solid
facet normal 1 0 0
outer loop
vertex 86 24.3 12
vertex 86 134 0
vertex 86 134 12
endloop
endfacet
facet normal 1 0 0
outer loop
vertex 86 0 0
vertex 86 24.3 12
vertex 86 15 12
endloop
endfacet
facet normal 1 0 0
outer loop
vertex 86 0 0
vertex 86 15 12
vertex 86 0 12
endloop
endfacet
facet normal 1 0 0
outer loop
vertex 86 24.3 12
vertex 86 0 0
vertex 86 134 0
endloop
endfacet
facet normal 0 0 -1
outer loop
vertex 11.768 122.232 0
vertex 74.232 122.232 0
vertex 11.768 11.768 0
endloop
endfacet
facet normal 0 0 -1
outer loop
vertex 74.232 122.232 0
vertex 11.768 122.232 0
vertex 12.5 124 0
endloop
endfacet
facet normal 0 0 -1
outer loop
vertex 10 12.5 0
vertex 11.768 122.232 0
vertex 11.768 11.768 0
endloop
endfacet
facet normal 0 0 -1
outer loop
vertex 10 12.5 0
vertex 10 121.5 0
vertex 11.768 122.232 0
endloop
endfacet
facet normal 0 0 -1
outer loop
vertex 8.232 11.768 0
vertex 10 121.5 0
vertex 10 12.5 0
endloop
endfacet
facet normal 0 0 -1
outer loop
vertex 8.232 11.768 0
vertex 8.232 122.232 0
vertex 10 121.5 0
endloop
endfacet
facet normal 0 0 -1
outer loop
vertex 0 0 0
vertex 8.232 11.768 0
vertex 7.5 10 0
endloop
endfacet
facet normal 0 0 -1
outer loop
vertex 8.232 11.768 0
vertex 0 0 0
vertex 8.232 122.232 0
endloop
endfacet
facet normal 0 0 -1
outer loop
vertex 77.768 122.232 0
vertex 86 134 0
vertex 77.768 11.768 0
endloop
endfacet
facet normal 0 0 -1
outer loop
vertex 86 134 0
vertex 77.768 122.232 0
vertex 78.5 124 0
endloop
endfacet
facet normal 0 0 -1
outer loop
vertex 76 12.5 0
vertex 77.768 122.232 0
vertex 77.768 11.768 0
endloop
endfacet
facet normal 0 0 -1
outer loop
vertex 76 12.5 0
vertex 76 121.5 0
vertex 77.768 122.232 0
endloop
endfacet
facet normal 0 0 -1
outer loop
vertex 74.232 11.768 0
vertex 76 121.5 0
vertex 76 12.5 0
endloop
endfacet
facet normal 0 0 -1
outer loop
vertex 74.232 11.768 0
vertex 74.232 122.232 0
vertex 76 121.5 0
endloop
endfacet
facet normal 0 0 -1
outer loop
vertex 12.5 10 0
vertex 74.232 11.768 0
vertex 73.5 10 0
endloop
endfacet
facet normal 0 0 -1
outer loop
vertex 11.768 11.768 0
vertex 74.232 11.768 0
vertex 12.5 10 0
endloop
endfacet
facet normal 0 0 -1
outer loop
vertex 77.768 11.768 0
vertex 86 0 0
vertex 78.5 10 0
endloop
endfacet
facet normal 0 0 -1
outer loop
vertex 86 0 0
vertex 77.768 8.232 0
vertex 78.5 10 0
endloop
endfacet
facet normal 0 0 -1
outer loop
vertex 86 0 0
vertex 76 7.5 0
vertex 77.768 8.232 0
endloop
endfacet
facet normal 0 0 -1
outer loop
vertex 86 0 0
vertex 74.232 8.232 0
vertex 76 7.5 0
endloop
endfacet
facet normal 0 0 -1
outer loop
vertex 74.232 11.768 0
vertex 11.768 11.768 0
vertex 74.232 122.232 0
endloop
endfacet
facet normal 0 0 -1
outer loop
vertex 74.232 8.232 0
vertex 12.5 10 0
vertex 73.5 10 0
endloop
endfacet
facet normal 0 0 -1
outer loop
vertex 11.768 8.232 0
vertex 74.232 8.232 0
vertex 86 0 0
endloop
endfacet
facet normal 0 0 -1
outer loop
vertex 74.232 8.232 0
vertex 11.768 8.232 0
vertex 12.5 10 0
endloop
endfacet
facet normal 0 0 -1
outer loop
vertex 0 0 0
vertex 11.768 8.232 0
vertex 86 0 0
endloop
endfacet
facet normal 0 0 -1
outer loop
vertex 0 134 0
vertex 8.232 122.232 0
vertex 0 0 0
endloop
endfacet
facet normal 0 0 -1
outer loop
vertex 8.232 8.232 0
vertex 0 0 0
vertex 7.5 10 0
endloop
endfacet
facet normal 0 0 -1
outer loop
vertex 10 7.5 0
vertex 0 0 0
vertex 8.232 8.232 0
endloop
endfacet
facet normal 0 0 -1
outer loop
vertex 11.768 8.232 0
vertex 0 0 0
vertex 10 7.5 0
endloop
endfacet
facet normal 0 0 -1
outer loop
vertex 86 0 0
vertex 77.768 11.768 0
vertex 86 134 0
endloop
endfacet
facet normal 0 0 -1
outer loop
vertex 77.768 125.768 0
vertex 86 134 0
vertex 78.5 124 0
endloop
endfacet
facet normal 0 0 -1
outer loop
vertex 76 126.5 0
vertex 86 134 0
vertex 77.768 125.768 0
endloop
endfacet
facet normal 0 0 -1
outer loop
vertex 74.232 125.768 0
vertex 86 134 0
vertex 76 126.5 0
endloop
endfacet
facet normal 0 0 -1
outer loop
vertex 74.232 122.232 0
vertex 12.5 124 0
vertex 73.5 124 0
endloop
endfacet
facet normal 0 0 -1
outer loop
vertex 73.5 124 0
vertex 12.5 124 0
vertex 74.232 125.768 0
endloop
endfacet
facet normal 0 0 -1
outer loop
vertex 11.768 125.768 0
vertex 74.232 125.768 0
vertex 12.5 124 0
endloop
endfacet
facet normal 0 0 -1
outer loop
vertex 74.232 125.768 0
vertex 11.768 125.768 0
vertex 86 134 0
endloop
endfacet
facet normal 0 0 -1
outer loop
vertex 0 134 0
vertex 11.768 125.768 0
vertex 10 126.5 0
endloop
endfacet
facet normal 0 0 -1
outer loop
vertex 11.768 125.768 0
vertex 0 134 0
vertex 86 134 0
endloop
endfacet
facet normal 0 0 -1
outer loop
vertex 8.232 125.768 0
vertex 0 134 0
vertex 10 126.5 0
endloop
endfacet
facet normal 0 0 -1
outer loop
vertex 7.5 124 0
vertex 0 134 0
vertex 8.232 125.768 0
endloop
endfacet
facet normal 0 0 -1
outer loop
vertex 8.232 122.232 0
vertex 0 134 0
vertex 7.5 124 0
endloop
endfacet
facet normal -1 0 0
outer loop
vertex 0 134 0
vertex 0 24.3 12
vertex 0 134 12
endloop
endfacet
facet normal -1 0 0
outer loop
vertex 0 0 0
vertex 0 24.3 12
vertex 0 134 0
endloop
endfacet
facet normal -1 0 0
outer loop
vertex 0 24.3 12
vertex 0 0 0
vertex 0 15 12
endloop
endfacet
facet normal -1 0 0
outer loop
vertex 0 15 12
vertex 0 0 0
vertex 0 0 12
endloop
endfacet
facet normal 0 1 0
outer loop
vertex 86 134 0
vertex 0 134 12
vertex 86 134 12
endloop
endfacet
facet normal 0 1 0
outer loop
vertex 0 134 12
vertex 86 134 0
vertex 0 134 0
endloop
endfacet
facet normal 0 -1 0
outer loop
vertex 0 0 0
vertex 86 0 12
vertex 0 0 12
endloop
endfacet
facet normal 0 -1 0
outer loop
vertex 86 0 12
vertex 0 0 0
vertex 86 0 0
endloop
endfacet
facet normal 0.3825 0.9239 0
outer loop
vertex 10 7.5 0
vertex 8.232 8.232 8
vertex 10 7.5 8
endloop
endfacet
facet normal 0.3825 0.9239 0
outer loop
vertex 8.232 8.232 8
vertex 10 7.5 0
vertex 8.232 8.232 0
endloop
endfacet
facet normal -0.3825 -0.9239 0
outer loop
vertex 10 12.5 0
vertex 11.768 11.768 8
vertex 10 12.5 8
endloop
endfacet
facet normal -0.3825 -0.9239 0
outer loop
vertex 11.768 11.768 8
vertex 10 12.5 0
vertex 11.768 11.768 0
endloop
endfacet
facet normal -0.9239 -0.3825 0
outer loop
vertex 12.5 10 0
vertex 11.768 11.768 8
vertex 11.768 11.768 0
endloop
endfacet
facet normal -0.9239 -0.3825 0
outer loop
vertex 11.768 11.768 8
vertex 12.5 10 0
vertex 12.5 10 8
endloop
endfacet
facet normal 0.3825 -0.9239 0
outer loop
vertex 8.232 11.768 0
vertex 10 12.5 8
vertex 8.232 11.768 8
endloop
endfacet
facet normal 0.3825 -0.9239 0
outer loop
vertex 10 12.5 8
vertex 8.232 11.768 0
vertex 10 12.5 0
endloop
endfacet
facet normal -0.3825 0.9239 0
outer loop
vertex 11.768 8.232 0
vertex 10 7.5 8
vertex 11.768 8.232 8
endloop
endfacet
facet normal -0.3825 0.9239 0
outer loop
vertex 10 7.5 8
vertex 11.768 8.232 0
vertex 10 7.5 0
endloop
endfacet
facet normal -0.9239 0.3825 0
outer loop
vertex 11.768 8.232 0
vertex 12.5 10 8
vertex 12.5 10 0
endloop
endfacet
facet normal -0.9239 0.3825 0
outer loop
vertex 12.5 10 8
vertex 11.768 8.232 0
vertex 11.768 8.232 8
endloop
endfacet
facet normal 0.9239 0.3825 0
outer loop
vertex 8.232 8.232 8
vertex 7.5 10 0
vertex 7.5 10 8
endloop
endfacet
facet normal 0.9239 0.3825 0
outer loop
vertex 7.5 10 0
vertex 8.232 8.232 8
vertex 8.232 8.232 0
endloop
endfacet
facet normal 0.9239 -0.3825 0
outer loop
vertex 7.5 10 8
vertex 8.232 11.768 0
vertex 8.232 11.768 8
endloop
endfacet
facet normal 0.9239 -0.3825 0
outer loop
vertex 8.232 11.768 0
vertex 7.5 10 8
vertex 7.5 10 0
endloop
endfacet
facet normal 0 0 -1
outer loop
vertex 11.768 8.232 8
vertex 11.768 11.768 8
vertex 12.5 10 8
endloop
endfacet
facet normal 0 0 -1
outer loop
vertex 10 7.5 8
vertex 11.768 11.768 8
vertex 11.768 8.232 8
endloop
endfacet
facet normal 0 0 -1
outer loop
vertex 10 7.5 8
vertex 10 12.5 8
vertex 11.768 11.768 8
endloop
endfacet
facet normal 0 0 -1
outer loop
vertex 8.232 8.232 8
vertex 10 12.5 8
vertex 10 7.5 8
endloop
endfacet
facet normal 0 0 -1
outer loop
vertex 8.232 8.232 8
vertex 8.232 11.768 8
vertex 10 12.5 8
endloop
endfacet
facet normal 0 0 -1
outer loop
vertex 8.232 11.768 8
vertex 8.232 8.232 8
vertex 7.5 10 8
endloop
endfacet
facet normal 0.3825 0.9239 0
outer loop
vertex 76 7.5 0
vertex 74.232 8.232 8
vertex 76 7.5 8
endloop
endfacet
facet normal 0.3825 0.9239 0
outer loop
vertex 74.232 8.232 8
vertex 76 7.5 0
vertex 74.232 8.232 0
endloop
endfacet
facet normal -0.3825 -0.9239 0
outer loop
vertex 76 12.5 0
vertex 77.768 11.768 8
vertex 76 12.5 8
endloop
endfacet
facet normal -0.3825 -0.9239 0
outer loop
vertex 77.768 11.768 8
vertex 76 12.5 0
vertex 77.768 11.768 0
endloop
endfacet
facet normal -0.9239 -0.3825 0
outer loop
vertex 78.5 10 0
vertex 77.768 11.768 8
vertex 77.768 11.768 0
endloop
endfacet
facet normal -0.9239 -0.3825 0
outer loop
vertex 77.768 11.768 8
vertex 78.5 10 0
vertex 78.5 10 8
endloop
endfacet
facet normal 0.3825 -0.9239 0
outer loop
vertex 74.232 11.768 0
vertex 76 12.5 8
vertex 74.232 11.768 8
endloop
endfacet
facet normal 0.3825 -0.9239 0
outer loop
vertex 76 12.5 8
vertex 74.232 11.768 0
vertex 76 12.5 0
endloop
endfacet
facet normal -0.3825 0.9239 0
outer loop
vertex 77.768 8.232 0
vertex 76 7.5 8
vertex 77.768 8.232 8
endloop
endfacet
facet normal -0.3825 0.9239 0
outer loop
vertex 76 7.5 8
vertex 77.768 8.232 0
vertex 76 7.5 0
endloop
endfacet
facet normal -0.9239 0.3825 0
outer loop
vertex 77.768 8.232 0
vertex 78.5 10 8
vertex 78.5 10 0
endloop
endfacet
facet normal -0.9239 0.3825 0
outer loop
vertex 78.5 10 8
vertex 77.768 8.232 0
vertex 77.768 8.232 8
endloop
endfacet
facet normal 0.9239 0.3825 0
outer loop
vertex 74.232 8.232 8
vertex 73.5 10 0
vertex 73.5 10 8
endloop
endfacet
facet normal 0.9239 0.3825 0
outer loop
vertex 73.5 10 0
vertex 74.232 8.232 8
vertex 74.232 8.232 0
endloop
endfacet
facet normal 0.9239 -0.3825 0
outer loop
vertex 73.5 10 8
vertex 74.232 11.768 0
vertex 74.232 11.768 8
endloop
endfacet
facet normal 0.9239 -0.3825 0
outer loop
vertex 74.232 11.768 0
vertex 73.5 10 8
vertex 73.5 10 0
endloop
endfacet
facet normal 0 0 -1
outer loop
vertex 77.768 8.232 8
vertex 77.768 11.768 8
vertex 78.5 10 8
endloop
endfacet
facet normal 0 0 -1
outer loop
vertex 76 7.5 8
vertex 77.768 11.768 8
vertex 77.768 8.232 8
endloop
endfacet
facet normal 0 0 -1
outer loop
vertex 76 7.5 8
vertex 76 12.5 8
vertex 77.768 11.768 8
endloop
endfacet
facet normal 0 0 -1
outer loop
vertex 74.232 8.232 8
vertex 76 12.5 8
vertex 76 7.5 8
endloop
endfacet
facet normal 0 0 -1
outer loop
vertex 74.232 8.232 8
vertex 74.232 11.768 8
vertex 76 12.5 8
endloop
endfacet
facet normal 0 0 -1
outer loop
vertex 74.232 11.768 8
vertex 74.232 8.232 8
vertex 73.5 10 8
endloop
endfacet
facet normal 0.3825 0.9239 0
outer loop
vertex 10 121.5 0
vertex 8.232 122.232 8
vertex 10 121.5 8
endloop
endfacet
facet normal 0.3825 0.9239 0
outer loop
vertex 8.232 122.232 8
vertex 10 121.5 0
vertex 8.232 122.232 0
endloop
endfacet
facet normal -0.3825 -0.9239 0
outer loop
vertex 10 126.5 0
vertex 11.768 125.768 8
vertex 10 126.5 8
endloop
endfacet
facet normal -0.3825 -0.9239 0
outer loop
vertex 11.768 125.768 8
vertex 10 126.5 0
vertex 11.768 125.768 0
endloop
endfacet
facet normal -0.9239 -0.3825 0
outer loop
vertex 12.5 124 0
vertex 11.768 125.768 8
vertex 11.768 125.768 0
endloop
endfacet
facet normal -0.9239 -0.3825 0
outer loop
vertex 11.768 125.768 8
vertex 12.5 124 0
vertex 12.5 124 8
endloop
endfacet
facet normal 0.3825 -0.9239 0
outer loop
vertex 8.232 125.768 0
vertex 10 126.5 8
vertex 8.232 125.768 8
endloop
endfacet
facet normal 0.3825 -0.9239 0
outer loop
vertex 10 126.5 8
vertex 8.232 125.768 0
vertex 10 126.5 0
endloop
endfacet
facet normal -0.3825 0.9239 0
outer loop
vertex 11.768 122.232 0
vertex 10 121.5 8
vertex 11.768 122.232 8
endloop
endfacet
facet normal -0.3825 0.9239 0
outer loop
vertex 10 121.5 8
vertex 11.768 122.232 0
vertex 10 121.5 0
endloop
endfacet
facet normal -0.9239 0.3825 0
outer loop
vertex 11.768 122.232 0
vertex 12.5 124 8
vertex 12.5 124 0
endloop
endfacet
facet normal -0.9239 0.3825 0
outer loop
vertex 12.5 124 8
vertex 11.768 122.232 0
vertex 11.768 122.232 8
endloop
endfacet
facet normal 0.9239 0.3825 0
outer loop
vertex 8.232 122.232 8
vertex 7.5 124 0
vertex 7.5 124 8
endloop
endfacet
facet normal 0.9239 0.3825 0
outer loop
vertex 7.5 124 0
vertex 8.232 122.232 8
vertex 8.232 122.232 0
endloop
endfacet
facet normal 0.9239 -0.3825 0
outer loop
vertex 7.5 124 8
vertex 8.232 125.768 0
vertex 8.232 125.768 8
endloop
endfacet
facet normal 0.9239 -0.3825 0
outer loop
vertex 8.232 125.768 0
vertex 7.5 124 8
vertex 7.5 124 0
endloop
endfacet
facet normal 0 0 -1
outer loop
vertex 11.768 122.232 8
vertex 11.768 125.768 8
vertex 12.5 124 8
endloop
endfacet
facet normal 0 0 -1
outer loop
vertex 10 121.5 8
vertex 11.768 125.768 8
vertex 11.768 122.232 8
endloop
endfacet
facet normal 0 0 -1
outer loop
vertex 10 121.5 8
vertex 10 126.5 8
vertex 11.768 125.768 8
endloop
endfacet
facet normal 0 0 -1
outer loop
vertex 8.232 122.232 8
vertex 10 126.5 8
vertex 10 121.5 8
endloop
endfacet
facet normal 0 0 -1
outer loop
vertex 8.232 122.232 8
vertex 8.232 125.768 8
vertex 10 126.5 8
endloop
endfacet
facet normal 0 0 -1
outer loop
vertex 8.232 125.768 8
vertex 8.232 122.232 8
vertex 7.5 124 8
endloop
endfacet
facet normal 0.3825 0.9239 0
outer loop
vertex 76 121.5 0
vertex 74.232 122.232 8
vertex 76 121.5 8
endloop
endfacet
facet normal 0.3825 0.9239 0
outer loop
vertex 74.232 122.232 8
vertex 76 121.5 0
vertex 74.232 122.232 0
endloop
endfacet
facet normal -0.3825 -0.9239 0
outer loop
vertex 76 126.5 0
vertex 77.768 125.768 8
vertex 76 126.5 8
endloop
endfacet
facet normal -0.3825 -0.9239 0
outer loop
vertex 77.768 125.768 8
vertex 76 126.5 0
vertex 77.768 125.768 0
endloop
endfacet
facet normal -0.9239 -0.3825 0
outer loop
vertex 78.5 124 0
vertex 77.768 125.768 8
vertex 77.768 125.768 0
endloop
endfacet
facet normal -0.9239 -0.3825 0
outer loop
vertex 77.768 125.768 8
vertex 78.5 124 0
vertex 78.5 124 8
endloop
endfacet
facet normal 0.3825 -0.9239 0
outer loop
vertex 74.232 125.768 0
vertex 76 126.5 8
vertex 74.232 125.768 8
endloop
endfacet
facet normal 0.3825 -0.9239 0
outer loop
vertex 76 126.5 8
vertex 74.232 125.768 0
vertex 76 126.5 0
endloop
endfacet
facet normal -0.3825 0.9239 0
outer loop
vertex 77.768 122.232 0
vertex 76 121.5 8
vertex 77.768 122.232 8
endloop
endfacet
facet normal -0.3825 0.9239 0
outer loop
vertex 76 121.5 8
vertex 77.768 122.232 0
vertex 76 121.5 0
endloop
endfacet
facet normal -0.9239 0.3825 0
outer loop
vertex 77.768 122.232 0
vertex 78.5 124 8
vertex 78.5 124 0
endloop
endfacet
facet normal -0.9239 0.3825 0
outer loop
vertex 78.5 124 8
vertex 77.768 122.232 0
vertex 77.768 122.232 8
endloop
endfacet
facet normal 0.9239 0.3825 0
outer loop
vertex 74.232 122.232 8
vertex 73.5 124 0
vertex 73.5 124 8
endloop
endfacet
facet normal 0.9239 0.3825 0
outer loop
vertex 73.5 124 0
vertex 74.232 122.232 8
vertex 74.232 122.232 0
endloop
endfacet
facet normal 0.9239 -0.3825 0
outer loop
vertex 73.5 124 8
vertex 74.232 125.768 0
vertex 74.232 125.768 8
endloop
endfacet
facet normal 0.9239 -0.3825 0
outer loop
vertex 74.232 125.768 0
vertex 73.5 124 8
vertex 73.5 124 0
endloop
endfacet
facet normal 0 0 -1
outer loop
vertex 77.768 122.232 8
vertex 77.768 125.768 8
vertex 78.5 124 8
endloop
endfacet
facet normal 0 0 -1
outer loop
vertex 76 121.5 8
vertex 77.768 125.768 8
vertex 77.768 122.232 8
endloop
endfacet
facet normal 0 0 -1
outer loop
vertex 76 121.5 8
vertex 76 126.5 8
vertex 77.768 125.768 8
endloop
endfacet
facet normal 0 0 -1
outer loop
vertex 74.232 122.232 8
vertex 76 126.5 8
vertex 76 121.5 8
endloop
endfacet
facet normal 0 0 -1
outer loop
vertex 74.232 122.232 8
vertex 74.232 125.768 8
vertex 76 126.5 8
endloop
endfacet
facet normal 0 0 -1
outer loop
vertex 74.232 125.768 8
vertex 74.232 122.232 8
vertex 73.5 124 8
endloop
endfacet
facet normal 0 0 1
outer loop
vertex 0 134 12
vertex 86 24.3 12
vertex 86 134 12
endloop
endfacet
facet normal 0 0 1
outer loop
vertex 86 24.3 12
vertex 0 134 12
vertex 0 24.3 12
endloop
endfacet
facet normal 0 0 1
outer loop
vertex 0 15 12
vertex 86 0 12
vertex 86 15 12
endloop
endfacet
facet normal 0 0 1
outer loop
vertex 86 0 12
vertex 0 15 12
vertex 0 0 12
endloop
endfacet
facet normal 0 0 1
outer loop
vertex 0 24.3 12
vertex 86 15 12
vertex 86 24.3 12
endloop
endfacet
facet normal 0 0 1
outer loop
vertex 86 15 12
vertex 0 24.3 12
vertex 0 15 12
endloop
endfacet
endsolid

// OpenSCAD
// file: speaker_cabinet.scad
u=12;
margin=5;
border=2;

difference() {
    union() {
        cube([u*6+margin*2+border*2,u*10+margin*2+border*2,50]);
    };
    
    //main cutout
    translate([3,3,22]) {
        cube([u*6+margin*2+border*2-6,u*10+margin*2+border*2-6,28]);
    };
    
    //speaker stands
    translate([(87-58)/2,(134-58)/2,17]) {
        cylinder(h=8, d=5);
    }
    translate([(87-58)/2+58,(134-58)/2,17]) {
        cylinder(h=8, d=5);
    }
    translate([(87-58)/2,(134-58)/2+58,17]) {
        cylinder(h=8, d=5);
    }
    translate([(87-58)/2+58,(134-58)/2+58,17]) {
        cylinder(h=8, d=5);
    }    
    
    //back mounting bracket
    translate([10,10,0]) {
        cylinder(h=8, d=5);
    }
    translate([u*6+margin*2+border*2-10,10,0]) {
        cylinder(h=8, d=5);
    }
    translate([10,u*10+margin*2+border*2-10,0]) {
        cylinder(h=8, d=5);
    }
    translate([u*6+margin*2+border*2-10,u*10+margin*2+border*2-10,0]) {
        cylinder(h=8, d=5);
    }
    
    //power cutout
    translate([0,15,10]) {
        cube([15,9.3,11.2]);        
    }    
    //power cutout pins
    translate([6,15,6]) {
        cube([9,9.3,4]);
    }    
    //power cable run
    translate([15,15,10]) {
        cube([86-14.5,9.3,2]);        
    }    
    
    //speaker magnet
    translate([87/2-33/2+16,134/2-33/2+16,12]) {
        cylinder(h=10,d=33);
    }
    
    //speaker wire conduit
    translate([u*6+margin*2+border*2-5,134/2,30]) {
        rotate(90,[0,1,0]) {
            cylinder(h=15,d=4);
        }
    }
};

// speaker stand 4mm diameter, 58mm apart
//87x134mm
// main file
difference() {
    include <speaker_cabinet.scad>;
    translate([-1,-1,12]) {
        cube(200);
    };
}

translate([0,15,6]) {
    cube([86,9.3,6]);
}
